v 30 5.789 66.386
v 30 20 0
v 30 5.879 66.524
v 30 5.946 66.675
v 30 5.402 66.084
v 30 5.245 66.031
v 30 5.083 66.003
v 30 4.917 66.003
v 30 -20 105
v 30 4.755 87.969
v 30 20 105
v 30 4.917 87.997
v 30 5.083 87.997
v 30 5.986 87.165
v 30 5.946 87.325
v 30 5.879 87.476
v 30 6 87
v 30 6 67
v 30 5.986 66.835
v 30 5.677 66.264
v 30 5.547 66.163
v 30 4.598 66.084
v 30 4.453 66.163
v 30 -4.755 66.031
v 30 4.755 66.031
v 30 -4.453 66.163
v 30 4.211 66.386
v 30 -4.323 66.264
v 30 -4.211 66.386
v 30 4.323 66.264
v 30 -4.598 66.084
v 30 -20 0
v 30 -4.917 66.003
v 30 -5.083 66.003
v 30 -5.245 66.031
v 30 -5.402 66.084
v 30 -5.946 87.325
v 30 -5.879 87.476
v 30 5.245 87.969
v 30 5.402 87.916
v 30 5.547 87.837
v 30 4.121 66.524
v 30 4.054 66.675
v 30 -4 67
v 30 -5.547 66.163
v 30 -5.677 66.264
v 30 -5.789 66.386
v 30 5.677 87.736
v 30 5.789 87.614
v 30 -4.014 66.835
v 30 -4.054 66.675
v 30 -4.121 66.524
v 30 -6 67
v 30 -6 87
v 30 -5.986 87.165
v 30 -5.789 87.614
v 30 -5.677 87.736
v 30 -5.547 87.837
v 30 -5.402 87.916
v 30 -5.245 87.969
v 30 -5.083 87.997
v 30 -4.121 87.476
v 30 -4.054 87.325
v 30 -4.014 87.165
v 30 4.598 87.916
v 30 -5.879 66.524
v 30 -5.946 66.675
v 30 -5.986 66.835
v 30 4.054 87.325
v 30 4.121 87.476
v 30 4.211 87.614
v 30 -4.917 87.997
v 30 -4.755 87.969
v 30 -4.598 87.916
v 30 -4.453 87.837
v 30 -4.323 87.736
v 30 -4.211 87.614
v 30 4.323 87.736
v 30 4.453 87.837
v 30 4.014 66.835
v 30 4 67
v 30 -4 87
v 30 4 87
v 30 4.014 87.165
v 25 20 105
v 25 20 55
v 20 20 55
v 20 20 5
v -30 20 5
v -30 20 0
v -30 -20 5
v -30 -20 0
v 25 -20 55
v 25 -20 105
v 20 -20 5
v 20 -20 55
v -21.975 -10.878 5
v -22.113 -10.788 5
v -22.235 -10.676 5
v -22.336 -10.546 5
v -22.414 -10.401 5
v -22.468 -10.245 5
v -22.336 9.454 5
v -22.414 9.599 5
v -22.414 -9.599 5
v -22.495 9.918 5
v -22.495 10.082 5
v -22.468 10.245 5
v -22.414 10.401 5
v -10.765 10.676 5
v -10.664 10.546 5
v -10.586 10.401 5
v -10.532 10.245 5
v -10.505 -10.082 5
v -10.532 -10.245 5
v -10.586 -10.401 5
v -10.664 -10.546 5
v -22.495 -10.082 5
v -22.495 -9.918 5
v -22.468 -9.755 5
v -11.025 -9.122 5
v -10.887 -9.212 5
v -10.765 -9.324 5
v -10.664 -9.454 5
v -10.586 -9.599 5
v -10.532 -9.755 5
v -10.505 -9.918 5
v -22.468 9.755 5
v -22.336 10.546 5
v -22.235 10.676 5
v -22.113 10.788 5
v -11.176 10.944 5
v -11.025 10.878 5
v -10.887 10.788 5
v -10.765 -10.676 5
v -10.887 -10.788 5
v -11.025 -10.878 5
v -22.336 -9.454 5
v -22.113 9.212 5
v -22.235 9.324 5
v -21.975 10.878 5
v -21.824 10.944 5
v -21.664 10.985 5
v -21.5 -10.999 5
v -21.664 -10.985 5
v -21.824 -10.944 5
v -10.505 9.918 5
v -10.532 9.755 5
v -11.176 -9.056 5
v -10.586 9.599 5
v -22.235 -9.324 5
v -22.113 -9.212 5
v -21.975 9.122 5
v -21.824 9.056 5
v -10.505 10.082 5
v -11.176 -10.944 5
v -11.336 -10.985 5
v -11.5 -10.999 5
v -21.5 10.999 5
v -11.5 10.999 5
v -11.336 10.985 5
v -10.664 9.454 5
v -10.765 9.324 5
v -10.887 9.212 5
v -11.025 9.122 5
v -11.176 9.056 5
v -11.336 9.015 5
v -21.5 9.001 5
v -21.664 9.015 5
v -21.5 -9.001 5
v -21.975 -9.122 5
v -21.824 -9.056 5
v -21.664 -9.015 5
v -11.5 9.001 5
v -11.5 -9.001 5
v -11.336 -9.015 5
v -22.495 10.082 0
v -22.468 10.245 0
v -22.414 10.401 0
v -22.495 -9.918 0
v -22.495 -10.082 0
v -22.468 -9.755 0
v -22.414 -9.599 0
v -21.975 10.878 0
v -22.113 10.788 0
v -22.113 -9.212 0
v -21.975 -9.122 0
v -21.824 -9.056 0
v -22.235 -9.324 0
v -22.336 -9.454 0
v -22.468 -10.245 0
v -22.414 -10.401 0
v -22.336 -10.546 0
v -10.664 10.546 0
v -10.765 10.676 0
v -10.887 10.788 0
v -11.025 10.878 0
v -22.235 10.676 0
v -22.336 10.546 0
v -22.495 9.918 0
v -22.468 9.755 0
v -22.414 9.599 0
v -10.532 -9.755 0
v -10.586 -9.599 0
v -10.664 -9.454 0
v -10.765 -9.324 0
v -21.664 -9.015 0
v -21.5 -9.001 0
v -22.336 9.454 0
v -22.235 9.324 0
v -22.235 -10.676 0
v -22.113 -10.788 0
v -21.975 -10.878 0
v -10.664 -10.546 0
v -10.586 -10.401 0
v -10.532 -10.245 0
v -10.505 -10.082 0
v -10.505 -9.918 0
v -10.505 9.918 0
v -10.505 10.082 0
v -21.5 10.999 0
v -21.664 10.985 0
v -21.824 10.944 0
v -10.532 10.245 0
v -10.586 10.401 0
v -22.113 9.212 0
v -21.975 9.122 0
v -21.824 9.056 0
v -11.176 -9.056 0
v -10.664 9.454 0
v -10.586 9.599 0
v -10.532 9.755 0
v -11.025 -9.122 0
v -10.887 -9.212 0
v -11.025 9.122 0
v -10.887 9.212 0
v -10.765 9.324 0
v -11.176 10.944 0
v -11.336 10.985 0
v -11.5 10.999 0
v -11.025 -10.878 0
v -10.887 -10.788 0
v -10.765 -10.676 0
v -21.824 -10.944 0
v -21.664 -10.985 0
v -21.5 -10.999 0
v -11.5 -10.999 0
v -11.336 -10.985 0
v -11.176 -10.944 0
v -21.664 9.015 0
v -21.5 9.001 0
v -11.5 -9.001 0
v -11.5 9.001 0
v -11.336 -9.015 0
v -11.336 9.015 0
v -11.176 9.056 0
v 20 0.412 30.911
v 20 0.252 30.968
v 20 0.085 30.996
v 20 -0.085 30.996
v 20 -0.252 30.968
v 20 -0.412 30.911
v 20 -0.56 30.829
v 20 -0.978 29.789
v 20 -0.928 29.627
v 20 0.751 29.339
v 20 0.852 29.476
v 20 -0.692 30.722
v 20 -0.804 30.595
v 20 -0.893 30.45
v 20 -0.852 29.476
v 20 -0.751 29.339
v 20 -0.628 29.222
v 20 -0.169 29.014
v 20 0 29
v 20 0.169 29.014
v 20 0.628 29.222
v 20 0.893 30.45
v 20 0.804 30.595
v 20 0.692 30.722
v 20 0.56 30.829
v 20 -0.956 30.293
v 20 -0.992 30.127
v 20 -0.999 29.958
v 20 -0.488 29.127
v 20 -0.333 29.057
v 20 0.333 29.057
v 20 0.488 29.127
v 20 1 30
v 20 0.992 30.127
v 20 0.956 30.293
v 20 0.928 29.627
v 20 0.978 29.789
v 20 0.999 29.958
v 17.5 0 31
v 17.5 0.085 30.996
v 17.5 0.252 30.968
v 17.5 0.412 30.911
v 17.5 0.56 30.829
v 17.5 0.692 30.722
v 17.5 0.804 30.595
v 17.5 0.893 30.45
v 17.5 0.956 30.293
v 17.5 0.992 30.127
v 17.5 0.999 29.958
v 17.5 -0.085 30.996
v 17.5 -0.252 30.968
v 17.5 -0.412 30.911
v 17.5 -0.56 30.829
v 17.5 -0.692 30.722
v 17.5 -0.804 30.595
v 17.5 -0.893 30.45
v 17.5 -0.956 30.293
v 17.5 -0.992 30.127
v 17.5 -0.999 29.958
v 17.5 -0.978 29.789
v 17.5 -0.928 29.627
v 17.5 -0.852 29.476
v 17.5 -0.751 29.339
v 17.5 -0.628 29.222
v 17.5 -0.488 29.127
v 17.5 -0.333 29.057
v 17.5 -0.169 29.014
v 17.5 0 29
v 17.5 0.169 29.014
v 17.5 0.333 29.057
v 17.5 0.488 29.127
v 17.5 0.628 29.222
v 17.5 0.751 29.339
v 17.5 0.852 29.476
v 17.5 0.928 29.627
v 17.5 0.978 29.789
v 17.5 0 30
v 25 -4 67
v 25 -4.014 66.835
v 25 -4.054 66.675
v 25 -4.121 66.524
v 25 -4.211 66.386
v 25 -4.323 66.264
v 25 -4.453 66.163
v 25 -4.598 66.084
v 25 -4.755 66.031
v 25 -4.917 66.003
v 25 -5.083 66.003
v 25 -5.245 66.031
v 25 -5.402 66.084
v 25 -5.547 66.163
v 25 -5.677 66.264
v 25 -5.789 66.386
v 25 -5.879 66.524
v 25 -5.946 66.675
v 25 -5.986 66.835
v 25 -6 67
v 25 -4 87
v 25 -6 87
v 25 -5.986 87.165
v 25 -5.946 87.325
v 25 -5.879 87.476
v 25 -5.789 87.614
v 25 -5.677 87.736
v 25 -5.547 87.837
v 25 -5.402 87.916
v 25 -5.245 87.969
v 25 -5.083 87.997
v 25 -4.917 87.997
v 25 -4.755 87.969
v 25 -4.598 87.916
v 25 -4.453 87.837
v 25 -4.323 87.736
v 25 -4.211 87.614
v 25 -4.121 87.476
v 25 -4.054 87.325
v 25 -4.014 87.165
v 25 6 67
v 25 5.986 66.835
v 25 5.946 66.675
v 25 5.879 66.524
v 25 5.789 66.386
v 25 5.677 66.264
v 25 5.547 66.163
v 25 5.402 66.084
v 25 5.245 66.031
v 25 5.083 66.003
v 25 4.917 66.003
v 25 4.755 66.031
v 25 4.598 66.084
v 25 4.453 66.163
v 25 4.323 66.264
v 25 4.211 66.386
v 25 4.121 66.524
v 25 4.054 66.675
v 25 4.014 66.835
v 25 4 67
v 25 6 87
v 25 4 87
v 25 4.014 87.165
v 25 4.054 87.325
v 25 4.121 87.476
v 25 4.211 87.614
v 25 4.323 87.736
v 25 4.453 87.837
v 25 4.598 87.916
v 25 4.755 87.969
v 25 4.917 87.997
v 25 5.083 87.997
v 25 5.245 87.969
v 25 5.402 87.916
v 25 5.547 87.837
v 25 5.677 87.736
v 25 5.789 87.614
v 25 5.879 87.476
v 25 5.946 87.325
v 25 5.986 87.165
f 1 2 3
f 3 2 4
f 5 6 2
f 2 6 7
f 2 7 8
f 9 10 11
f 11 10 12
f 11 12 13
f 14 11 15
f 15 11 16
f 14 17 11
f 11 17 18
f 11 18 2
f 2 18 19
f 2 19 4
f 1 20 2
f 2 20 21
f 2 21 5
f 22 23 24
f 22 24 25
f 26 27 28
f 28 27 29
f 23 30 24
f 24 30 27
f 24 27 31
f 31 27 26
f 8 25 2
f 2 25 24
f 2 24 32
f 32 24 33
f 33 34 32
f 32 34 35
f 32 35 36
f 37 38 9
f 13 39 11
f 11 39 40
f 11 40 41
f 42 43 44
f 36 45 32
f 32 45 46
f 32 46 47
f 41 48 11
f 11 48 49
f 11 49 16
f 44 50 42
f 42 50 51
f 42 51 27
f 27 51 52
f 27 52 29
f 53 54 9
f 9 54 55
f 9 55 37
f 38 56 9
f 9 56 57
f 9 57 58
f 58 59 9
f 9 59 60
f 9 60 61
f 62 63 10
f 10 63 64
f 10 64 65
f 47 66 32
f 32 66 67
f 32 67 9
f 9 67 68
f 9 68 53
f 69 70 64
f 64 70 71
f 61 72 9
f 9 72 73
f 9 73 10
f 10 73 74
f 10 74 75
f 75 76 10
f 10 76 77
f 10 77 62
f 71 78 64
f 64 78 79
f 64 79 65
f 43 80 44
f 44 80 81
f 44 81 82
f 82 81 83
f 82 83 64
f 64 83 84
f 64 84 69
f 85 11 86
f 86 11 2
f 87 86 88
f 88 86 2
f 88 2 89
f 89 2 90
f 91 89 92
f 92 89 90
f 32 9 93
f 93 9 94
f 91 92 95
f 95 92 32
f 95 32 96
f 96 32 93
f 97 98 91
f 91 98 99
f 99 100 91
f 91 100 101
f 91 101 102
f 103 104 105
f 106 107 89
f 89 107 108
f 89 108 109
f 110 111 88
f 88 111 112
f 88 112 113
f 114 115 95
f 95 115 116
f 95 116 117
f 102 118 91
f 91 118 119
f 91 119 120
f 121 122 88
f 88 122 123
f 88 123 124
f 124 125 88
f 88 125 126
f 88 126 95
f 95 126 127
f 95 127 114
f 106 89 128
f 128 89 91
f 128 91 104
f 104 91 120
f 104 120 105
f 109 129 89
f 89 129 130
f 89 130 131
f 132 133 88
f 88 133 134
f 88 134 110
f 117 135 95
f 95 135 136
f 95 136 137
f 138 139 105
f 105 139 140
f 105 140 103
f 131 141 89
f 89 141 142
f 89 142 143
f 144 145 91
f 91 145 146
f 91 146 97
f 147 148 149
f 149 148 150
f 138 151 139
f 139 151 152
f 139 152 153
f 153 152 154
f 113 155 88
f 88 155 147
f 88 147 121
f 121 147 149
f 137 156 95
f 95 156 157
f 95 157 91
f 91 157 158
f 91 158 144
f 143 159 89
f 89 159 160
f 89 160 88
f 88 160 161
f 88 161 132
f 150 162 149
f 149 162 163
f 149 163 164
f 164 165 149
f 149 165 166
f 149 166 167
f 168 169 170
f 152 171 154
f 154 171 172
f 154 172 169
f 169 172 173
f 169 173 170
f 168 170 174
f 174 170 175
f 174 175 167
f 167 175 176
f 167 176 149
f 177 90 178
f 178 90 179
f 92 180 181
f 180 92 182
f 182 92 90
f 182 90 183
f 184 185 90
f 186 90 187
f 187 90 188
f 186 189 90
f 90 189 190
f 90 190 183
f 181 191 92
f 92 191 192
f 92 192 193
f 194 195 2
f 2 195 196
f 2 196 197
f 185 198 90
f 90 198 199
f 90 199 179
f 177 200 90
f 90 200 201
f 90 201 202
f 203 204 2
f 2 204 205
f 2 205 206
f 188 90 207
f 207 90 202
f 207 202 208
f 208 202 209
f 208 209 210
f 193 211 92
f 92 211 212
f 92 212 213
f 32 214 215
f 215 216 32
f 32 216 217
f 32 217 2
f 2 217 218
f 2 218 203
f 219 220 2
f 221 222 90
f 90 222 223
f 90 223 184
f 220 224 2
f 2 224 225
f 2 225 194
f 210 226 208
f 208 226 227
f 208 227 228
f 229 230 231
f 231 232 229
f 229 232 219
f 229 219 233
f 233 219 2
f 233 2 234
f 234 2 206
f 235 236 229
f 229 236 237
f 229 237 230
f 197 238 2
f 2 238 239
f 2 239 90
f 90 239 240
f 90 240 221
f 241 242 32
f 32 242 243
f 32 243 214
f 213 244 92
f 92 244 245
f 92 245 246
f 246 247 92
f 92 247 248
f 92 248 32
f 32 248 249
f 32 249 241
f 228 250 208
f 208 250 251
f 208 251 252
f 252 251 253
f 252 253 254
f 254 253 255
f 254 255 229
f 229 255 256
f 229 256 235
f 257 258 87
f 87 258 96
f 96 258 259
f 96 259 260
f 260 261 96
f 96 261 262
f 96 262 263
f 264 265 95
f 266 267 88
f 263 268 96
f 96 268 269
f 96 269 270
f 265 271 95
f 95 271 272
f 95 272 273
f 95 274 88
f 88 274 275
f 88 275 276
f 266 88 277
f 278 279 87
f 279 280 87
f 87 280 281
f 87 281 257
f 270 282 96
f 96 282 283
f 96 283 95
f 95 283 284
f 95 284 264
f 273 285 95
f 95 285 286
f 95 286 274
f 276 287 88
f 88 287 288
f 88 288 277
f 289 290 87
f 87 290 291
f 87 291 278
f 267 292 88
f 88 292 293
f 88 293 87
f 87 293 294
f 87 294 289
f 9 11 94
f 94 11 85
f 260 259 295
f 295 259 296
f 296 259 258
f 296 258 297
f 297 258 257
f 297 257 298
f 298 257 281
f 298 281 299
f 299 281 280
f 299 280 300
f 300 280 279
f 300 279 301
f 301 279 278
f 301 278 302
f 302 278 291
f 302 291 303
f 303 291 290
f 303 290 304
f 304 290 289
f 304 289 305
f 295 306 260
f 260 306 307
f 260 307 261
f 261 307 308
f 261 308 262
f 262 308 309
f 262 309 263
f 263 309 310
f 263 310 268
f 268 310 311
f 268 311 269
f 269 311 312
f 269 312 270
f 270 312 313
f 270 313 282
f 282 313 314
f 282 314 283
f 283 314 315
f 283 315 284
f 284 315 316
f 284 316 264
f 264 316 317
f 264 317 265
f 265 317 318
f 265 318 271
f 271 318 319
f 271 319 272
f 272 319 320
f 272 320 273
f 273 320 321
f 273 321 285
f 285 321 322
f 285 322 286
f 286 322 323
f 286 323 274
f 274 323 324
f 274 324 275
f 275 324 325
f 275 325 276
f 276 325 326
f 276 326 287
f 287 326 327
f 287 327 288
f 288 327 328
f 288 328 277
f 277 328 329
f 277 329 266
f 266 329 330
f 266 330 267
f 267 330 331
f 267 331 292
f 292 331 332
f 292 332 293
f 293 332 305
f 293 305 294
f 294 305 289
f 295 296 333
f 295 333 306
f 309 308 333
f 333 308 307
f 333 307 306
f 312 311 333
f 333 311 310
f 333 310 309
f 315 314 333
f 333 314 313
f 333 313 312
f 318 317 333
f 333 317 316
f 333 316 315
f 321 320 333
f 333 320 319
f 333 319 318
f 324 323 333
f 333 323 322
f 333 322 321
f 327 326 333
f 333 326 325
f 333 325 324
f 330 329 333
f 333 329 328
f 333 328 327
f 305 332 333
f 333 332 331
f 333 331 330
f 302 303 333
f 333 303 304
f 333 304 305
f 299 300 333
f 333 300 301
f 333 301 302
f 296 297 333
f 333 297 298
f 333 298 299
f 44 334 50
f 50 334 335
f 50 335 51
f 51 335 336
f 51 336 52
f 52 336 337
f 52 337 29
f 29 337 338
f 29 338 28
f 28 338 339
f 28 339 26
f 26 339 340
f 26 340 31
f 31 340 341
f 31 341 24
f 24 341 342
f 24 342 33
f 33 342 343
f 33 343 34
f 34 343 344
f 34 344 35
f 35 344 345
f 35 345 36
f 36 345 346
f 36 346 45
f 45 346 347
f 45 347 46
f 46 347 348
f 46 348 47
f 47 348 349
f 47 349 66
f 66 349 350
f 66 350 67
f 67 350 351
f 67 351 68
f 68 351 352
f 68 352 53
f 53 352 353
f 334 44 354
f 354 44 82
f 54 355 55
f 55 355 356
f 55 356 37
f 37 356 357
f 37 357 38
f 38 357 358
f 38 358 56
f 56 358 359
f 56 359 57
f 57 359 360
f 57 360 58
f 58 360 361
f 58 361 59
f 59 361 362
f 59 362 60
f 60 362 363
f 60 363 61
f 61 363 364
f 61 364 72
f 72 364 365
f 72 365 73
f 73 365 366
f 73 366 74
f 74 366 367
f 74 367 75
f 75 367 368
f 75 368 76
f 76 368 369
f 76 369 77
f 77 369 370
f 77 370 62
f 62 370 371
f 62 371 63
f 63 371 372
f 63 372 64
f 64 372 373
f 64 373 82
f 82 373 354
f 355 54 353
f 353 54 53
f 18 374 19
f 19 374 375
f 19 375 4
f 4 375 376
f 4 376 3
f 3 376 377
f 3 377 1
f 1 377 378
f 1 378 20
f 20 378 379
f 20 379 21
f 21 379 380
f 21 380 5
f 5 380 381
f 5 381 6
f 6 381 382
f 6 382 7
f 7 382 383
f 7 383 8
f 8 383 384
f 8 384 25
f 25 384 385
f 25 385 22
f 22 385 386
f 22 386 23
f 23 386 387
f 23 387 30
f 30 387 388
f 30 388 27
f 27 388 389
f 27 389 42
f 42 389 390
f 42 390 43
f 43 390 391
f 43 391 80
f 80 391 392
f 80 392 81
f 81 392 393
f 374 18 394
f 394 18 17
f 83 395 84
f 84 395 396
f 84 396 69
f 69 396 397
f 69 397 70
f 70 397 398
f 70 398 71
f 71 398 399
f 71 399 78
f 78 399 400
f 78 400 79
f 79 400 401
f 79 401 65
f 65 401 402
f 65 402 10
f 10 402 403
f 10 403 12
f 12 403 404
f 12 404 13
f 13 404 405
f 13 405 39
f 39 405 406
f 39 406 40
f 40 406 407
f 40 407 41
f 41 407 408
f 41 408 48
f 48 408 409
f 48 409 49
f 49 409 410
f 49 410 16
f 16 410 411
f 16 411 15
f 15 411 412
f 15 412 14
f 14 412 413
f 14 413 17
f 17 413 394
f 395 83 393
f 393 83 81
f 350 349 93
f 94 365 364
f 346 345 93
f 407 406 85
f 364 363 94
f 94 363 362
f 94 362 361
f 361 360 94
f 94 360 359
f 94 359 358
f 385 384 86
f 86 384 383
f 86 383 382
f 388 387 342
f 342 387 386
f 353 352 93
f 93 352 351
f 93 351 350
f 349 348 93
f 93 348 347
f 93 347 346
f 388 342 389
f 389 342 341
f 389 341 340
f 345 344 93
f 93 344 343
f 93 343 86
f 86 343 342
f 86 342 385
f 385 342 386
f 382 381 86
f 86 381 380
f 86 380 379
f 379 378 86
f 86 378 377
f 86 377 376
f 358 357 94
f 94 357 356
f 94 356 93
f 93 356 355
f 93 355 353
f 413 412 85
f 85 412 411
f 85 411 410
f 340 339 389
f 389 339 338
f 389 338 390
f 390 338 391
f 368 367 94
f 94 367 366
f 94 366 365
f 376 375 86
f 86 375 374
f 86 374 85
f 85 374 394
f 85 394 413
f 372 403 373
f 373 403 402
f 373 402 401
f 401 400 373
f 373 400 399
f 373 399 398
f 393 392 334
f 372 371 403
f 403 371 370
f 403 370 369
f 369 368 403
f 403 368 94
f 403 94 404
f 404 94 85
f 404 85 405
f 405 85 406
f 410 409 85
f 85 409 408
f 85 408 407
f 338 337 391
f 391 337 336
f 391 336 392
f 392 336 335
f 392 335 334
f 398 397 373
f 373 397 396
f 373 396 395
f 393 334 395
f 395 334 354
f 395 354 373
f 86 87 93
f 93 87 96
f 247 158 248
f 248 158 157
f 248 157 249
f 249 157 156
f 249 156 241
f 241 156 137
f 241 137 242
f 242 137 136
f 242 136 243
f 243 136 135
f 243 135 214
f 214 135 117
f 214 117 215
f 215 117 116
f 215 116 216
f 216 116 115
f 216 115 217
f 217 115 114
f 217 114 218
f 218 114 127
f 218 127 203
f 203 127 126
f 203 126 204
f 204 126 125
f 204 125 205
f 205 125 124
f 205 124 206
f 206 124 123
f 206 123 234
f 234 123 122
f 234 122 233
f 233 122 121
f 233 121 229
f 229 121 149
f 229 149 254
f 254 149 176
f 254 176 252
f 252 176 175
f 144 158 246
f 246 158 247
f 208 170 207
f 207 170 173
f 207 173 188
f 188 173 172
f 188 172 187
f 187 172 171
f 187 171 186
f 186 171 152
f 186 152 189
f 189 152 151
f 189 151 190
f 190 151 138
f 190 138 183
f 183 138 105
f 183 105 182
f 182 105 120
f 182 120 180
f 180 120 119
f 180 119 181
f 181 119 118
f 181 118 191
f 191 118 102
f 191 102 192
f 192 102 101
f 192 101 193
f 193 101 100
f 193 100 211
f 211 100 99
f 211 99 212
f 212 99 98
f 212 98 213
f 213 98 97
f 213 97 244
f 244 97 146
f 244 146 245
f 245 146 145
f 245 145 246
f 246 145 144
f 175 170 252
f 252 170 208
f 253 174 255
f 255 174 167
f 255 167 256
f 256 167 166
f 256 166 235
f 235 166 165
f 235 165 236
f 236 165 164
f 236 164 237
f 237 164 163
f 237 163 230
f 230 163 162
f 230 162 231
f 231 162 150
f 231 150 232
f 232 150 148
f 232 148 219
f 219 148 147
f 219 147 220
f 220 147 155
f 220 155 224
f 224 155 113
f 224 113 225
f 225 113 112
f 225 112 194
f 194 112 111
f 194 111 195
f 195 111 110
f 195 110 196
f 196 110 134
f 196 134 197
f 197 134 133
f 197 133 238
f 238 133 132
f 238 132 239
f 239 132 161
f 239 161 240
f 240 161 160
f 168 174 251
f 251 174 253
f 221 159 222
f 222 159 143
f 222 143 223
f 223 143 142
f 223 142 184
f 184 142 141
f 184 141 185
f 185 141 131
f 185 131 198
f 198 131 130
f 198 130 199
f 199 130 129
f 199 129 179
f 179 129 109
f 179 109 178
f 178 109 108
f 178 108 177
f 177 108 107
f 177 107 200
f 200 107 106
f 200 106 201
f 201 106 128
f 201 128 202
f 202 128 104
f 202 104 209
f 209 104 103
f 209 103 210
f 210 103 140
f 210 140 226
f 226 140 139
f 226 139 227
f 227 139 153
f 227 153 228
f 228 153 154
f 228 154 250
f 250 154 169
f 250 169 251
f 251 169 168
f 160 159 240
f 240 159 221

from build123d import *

# Parameters (mm, degrees)
SKETCH_1_W          = 60
SKETCH_1_H          = 40
EXTRUDE_1_DEPTH     = 5
SKETCH_2_W          = 10
SKETCH_2_H          = 40
EXTRUDE_2_DEPTH     = 100
SKETCH_3_R          = 1
EXTRUDE_3_DEPTH     = 2.5
CUT_EXTRUDE_1_DEPTH = 11
SKETCH_5_W          = 5
SKETCH_5_H          = 50
CUT_EXTRUDE_2_DEPTH = 41
CUT_EXTRUDE_3_REACH = 7


with BuildPart() as part:
    # 草图1 → 凸台-拉伸1 (new body)
    with BuildSketch(Plane.XY):
        Rectangle(SKETCH_1_W, SKETCH_1_H)
    extrude(amount=EXTRUDE_1_DEPTH)

    # 草图2 → 凸台-拉伸2 (add)
    with BuildSketch(Plane.XY.offset(5)):
        with Locations((25, 0)):
            Rectangle(SKETCH_2_W, SKETCH_2_H)
    extrude(amount=EXTRUDE_2_DEPTH)

    # 草图3 → 凸台-拉伸3 (add)
    with BuildSketch(Plane.ZY.offset(-20)):
        with Locations((30, 0)):
            Circle(SKETCH_3_R)
    extrude(amount=EXTRUDE_3_DEPTH)

    # 草图4 → 切除-拉伸1 (cut, through all)
    with BuildSketch(Plane.ZY.offset(-20)):
        with BuildLine():
            Line((67, 6), (87, 6))
            ThreePointArc((87, 6), (88, 5), (87, 4))
            Line((87, 4), (67, 4))
            ThreePointArc((67, 4), (66, 5), (67, 6))
        make_face()
        with BuildLine():
            Line((67, -6), (87, -6))
            ThreePointArc((87, -6), (88, -5), (87, -4))
            Line((87, -4), (67, -4))
            ThreePointArc((67, -4), (66, -5), (67, -6))
        make_face()
    extrude(amount=-CUT_EXTRUDE_1_DEPTH, mode=Mode.SUBTRACT)

    # 草图5 → 切除-拉伸2 (cut, through all)
    with BuildSketch(Plane.XZ.offset(20)):
        with Locations((22.5, 80)):
            Rectangle(SKETCH_5_W, SKETCH_5_H)
    extrude(amount=-CUT_EXTRUDE_2_DEPTH, mode=Mode.SUBTRACT)

    # 草图6 → 切除-拉伸3 (cut, up to next)
    with BuildSketch(Plane.XY.offset(5), mode=Mode.PRIVATE) as cut_extrude_3_sk1:
        with BuildLine():
            Line((-11.5, 9.001468336), (-21.5, 9.001468336))
            ThreePointArc((-21.5, 9.001468336), (-22.498531664, 10), (-21.5, 10.998531664))
            Line((-21.5, 10.998531664), (-11.5, 10.998531664))
            ThreePointArc((-11.5, 10.998531664), (-10.501468336, 10), (-11.5, 9.001468336))
        make_face()
    cut_extrude_3_tool1 = extrude(cut_extrude_3_sk1.sketch, amount=-CUT_EXTRUDE_3_REACH, mode=Mode.PRIVATE) & part.part
    add(cut_extrude_3_tool1.solids().sort_by_distance((-16.5, 10, 5))[0], mode=Mode.SUBTRACT)
    # 草图6 → 切除-拉伸3 (cut, up to next)
    with BuildSketch(Plane.XY.offset(5), mode=Mode.PRIVATE) as cut_extrude_3_sk2:
        with BuildLine():
            Line((-11.5, -9.001468336), (-21.5, -9.001468336))
            ThreePointArc((-21.5, -9.001468336), (-22.498531664, -10), (-21.5, -10.998531664))
            Line((-21.5, -10.998531664), (-11.5, -10.998531664))
            ThreePointArc((-11.5, -10.998531664), (-10.501468336, -10), (-11.5, -9.001468336))
        make_face()
    cut_extrude_3_tool2 = extrude(cut_extrude_3_sk2.sketch, amount=-CUT_EXTRUDE_3_REACH, mode=Mode.PRIVATE) & part.part
    add(cut_extrude_3_tool2.solids().sort_by_distance((-16.5, -10, 5))[0], mode=Mode.SUBTRACT)


solid = part.part
